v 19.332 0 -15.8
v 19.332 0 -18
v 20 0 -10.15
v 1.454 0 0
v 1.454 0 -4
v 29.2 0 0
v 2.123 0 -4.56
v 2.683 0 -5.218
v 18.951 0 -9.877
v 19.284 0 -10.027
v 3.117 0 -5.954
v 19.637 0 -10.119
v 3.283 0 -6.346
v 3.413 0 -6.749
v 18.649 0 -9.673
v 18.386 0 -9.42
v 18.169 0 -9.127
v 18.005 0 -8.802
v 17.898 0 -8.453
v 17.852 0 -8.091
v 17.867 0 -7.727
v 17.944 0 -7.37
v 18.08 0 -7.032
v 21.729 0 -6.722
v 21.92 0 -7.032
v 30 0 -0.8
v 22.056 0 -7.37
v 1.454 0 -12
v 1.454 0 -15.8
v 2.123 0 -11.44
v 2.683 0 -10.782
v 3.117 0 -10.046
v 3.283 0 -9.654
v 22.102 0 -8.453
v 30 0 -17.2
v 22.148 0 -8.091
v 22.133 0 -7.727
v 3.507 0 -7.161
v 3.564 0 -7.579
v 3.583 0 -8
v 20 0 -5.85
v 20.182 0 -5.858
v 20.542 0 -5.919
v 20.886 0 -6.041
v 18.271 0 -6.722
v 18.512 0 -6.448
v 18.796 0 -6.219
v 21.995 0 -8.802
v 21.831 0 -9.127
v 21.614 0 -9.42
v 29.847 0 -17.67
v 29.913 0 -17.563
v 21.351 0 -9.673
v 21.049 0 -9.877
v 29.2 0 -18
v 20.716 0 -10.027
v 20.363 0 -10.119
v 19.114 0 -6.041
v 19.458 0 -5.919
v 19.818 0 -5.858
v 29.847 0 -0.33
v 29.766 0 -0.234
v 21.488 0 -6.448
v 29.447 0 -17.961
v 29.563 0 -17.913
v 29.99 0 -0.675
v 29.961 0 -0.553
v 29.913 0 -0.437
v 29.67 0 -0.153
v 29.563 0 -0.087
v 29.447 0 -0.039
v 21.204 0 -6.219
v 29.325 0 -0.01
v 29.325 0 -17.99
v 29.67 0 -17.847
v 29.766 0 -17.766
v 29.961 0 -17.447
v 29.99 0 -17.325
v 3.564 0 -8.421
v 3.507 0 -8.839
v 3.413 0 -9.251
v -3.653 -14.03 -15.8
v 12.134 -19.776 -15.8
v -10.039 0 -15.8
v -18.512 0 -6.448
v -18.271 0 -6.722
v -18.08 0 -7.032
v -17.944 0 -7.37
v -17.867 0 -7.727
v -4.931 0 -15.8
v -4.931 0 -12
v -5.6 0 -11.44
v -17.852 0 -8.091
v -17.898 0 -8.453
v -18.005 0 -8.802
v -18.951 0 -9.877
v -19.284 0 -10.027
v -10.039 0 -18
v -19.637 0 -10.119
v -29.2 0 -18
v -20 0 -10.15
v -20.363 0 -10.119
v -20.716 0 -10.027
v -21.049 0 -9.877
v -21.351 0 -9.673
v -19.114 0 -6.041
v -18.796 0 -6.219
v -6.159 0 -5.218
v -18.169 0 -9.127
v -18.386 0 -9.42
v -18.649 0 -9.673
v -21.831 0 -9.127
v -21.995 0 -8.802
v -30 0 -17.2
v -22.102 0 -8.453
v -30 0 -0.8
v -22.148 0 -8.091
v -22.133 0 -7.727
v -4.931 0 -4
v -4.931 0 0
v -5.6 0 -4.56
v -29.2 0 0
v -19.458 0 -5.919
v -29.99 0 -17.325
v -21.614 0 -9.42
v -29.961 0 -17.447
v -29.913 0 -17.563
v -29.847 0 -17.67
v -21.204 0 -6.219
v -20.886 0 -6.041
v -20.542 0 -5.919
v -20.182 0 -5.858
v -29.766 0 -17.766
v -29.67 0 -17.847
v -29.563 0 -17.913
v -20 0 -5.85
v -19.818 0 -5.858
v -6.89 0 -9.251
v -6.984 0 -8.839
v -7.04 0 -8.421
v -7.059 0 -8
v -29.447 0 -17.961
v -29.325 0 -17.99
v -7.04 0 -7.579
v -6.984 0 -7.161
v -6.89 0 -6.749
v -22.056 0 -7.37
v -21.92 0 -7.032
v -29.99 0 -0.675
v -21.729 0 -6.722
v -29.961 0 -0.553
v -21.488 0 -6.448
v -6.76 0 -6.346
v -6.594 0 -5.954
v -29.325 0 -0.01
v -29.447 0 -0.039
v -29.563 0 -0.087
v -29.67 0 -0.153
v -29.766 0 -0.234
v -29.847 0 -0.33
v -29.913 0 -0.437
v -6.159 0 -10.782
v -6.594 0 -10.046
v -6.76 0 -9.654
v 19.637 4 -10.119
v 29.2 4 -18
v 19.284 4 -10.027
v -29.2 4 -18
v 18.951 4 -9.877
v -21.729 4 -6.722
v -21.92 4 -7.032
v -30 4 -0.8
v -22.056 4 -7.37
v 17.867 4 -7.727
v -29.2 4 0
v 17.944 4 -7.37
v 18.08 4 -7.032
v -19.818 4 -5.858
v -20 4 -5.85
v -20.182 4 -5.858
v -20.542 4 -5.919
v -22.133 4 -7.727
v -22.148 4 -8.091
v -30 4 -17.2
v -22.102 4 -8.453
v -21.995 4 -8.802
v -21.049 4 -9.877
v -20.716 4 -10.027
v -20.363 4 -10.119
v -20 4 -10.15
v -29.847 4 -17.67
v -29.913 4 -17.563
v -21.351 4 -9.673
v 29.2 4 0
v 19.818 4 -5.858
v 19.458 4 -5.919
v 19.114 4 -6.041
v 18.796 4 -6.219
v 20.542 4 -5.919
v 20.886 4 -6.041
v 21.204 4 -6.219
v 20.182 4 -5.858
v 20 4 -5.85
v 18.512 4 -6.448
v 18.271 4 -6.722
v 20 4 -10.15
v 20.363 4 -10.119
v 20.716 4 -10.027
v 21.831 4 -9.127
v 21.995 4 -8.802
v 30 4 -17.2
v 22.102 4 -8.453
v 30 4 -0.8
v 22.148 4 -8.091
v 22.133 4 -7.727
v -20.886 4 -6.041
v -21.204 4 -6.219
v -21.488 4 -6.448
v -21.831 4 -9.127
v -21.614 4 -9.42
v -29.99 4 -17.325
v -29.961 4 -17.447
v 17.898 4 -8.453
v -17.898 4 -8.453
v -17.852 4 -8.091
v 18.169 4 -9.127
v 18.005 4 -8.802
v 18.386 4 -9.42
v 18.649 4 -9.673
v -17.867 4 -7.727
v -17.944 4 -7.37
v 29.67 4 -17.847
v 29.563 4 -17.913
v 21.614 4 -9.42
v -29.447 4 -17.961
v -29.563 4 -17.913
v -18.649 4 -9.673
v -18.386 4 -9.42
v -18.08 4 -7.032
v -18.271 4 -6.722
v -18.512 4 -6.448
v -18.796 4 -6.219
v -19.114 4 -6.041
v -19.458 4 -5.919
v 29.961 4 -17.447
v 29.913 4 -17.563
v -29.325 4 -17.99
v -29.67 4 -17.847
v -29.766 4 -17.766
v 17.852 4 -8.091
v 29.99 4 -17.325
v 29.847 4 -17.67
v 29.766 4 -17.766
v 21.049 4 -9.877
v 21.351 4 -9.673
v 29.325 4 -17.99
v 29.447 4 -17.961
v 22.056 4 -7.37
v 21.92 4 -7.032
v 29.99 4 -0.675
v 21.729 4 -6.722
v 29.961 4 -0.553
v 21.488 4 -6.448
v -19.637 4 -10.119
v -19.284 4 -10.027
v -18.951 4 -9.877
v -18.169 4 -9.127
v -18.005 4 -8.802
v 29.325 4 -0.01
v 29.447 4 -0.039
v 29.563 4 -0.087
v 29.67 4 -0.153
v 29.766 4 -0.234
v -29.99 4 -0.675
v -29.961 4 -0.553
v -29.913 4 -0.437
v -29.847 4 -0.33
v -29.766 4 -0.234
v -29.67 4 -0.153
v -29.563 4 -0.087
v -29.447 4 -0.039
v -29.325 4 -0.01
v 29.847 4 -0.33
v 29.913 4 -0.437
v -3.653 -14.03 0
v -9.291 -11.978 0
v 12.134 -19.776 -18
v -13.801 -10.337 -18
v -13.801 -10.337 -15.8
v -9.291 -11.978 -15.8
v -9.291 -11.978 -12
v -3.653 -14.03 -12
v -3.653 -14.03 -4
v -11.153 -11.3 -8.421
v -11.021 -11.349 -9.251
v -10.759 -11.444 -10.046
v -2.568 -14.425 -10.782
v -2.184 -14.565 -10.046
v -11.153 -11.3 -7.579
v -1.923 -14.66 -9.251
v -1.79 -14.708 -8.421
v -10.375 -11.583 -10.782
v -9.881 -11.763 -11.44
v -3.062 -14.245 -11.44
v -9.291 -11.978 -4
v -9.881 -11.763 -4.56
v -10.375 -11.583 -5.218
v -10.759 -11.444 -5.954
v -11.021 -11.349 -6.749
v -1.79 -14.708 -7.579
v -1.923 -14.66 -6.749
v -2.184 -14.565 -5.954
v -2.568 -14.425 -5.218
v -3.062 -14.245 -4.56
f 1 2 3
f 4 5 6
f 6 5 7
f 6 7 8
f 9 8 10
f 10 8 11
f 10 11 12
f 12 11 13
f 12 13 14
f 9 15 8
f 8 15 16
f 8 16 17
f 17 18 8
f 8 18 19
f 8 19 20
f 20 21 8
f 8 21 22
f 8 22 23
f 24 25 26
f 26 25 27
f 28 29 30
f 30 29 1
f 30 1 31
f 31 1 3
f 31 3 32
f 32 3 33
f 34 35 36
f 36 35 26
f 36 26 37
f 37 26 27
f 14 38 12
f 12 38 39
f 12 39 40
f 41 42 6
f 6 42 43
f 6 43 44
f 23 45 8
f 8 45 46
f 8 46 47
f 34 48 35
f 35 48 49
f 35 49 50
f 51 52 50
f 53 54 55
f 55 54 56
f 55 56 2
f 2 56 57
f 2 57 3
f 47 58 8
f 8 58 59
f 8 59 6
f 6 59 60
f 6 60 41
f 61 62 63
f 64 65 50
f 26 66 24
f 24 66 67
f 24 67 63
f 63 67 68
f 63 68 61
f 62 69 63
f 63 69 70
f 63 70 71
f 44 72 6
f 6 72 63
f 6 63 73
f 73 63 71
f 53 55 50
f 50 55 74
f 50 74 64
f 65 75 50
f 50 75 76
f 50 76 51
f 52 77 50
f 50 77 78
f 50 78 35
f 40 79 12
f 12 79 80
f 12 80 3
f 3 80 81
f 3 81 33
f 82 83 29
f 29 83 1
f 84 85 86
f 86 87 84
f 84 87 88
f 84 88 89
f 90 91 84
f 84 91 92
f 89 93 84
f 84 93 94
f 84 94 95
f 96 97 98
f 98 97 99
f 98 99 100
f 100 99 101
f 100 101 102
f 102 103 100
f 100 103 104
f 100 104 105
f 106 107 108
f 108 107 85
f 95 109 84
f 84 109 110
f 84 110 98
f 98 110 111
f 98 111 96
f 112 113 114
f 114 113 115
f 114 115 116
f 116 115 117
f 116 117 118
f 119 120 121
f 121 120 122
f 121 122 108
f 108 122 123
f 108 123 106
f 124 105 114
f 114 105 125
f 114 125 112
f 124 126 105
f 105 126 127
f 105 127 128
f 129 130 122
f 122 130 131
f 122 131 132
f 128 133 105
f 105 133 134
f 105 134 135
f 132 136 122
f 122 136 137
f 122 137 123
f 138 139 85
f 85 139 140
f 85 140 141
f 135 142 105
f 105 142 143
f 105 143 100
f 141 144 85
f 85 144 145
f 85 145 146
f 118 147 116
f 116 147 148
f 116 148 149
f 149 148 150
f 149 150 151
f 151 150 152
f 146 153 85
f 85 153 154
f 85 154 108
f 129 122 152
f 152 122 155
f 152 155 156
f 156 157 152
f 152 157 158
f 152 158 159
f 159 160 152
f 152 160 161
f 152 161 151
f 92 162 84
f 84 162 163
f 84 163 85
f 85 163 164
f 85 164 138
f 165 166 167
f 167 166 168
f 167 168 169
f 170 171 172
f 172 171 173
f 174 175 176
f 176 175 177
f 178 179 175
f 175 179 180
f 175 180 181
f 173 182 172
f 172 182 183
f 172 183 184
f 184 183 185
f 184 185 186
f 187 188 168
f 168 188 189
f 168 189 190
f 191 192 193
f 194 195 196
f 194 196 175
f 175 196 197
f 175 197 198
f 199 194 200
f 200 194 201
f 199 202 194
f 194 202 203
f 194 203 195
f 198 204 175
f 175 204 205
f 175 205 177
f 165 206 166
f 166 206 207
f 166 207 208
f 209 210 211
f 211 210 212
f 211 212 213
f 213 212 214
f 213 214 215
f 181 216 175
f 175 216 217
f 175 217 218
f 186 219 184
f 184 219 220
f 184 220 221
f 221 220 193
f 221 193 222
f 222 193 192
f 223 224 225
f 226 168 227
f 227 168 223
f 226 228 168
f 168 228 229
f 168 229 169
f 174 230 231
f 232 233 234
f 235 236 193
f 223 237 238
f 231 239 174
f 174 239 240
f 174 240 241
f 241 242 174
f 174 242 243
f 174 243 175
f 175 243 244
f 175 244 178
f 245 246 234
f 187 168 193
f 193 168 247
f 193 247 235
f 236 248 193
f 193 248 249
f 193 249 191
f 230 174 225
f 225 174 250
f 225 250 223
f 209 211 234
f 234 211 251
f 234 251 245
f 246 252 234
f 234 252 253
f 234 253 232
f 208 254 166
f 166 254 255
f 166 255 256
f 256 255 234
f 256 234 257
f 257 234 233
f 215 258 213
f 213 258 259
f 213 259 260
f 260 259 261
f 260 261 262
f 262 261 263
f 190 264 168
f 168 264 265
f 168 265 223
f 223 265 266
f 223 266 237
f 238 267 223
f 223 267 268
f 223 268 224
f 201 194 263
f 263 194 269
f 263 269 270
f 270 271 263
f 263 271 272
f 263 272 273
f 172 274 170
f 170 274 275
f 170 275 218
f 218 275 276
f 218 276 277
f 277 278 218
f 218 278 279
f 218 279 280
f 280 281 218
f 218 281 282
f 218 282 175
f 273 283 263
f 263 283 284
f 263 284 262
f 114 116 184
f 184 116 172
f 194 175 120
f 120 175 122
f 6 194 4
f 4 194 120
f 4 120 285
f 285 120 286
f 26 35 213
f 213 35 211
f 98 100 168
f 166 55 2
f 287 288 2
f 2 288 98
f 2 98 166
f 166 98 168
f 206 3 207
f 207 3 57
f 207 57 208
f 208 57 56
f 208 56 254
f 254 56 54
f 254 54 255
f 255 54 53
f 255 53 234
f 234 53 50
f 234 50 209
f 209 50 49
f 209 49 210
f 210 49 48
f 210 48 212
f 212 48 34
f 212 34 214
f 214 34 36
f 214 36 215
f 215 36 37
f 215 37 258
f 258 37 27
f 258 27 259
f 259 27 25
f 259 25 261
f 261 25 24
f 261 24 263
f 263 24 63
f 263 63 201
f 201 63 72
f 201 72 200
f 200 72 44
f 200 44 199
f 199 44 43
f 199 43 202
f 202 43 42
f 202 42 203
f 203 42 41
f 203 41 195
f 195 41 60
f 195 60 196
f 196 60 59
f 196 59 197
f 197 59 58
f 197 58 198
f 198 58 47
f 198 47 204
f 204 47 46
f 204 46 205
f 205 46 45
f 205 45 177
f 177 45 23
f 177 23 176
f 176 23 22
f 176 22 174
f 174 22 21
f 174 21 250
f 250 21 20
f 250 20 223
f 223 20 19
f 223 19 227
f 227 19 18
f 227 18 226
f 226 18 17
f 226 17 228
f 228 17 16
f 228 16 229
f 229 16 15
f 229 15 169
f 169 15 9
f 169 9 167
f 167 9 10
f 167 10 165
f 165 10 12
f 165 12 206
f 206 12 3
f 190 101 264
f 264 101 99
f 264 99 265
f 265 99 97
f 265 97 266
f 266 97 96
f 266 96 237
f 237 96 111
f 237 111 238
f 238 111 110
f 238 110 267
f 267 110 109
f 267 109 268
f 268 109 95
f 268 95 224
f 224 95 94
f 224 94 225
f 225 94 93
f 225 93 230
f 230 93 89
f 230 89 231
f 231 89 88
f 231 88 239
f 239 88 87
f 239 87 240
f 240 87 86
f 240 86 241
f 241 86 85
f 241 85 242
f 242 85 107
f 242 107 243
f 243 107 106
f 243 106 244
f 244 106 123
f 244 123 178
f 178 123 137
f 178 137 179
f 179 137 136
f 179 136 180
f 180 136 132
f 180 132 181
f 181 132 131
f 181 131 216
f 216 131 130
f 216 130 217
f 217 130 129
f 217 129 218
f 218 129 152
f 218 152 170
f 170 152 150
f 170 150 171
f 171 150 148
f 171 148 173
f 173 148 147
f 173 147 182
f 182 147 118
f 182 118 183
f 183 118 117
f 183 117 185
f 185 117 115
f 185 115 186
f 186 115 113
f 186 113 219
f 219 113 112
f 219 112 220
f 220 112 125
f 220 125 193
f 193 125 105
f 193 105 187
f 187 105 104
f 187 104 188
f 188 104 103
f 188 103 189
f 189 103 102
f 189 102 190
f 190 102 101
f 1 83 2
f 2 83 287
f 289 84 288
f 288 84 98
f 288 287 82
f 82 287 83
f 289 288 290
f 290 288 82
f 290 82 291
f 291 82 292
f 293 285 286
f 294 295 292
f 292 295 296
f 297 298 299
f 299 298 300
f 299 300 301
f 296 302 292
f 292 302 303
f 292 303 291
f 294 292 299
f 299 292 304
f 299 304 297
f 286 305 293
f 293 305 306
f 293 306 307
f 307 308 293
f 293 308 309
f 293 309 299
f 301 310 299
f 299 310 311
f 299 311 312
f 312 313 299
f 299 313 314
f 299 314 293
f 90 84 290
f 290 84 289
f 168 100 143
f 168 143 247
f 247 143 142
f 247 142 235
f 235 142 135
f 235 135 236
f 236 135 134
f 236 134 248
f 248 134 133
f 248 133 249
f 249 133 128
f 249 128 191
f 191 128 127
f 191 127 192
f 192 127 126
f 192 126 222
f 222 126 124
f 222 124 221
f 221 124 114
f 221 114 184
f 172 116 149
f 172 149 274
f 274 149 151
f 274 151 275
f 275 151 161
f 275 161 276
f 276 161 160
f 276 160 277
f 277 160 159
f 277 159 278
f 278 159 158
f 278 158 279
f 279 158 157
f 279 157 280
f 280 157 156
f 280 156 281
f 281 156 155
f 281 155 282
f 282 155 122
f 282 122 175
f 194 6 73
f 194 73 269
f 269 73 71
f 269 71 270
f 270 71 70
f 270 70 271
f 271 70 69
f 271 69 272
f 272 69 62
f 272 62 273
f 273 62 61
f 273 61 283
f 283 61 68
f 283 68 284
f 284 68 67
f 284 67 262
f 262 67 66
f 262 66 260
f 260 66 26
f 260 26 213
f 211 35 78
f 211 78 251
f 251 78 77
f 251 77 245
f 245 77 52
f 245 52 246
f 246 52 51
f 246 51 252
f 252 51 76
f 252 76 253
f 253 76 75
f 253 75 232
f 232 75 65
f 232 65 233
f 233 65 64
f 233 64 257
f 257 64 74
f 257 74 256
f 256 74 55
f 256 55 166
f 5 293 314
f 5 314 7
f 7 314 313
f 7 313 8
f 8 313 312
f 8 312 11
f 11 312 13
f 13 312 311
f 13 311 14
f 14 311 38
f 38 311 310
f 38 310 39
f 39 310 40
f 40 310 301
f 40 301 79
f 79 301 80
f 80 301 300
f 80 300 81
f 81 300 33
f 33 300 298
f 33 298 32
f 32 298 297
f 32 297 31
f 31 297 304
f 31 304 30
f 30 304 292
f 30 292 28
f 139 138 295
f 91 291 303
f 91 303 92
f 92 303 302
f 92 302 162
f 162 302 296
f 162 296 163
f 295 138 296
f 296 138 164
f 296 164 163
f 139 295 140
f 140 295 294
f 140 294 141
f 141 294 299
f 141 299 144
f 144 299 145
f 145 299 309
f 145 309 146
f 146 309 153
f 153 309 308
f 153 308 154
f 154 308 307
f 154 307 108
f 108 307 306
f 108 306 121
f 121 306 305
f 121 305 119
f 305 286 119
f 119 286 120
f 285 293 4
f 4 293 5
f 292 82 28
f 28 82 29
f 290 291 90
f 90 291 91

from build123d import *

# Parameters (mm, degrees)
SKETCH_1_W      = 60
SKETCH_1_H      = 18
SKETCH_1_R      = 2.15
EXTRUDE_1_DEPTH = 4
EXTRUDE_3_DEPTH = 2.2
FILLET_1_R      = 0.8
EXTRUDE_4_DEPTH = 15.801607137


with BuildPart() as part:
    # 草图1 → 凸台-拉伸1 (new body)
    with BuildSketch(Plane(origin=(0, 0, 0), x_dir=(1, 0, 0), z_dir=(0, 1, 0))):
        with Locations((0, 9)):
            Rectangle(SKETCH_1_W, SKETCH_1_H)
        with Locations(Location((-20, 8, 0), (0, 0, 270))):
            Circle(SKETCH_1_R, mode=Mode.SUBTRACT)
        with Locations(Location((20, 8, 0), (0, 0, 270))):
            Circle(SKETCH_1_R, mode=Mode.SUBTRACT)
    extrude(amount=EXTRUDE_1_DEPTH)

    # 草图5 → 凸台-拉伸3 (add)
    with BuildSketch(Plane(origin=(0, 0, -18), x_dir=(-1, 0, 0), z_dir=(0, 0, -1))):
        Polygon((-19.332346445, 0), (10.038960076, 0), (13.801181652, -10.336618829), (-12.134334681, -19.776374784), align=None)
    extrude(amount=-EXTRUDE_3_DEPTH)

    # 圆角1
    fillet_1_edges = [part.edges().sort_by_distance(p)[0] for p in [
        (-30, 2, -18),
        (30, 2, -18),
        (30, 2, 0),
        (-30, 2, 0),
    ]]
    fillet(fillet_1_edges, radius=FILLET_1_R)

    # 草图4 → 凸台-拉伸4 (add)
    with BuildSketch(Plane(origin=(0.467911114, 1.285575219, 0), x_dir=(0, 0, -1), z_dir=(0.34202014332566943, 0.9396926207859081, 0))):
        with BuildLine():
            Line((0, 4.633536704), (4, 4.633536704))
            ThreePointArc((4, 4.633536704), (8, 6.633536704), (12, 4.633536704))
            Line((12, 4.633536704), (18, 4.633536704))
            Line((18, 4.633536704), (18, -1.366463296))
            Line((18, -1.366463296), (12, -1.366463296))
            ThreePointArc((12, -1.366463296), (8, -3.366463296), (4, -1.366463296))
            Line((4, -1.366463296), (0, -1.366463296))
            Line((0, -1.366463296), (0, 4.633536704))
        make_face()
    extrude(amount=-EXTRUDE_4_DEPTH)


solid = part.part
